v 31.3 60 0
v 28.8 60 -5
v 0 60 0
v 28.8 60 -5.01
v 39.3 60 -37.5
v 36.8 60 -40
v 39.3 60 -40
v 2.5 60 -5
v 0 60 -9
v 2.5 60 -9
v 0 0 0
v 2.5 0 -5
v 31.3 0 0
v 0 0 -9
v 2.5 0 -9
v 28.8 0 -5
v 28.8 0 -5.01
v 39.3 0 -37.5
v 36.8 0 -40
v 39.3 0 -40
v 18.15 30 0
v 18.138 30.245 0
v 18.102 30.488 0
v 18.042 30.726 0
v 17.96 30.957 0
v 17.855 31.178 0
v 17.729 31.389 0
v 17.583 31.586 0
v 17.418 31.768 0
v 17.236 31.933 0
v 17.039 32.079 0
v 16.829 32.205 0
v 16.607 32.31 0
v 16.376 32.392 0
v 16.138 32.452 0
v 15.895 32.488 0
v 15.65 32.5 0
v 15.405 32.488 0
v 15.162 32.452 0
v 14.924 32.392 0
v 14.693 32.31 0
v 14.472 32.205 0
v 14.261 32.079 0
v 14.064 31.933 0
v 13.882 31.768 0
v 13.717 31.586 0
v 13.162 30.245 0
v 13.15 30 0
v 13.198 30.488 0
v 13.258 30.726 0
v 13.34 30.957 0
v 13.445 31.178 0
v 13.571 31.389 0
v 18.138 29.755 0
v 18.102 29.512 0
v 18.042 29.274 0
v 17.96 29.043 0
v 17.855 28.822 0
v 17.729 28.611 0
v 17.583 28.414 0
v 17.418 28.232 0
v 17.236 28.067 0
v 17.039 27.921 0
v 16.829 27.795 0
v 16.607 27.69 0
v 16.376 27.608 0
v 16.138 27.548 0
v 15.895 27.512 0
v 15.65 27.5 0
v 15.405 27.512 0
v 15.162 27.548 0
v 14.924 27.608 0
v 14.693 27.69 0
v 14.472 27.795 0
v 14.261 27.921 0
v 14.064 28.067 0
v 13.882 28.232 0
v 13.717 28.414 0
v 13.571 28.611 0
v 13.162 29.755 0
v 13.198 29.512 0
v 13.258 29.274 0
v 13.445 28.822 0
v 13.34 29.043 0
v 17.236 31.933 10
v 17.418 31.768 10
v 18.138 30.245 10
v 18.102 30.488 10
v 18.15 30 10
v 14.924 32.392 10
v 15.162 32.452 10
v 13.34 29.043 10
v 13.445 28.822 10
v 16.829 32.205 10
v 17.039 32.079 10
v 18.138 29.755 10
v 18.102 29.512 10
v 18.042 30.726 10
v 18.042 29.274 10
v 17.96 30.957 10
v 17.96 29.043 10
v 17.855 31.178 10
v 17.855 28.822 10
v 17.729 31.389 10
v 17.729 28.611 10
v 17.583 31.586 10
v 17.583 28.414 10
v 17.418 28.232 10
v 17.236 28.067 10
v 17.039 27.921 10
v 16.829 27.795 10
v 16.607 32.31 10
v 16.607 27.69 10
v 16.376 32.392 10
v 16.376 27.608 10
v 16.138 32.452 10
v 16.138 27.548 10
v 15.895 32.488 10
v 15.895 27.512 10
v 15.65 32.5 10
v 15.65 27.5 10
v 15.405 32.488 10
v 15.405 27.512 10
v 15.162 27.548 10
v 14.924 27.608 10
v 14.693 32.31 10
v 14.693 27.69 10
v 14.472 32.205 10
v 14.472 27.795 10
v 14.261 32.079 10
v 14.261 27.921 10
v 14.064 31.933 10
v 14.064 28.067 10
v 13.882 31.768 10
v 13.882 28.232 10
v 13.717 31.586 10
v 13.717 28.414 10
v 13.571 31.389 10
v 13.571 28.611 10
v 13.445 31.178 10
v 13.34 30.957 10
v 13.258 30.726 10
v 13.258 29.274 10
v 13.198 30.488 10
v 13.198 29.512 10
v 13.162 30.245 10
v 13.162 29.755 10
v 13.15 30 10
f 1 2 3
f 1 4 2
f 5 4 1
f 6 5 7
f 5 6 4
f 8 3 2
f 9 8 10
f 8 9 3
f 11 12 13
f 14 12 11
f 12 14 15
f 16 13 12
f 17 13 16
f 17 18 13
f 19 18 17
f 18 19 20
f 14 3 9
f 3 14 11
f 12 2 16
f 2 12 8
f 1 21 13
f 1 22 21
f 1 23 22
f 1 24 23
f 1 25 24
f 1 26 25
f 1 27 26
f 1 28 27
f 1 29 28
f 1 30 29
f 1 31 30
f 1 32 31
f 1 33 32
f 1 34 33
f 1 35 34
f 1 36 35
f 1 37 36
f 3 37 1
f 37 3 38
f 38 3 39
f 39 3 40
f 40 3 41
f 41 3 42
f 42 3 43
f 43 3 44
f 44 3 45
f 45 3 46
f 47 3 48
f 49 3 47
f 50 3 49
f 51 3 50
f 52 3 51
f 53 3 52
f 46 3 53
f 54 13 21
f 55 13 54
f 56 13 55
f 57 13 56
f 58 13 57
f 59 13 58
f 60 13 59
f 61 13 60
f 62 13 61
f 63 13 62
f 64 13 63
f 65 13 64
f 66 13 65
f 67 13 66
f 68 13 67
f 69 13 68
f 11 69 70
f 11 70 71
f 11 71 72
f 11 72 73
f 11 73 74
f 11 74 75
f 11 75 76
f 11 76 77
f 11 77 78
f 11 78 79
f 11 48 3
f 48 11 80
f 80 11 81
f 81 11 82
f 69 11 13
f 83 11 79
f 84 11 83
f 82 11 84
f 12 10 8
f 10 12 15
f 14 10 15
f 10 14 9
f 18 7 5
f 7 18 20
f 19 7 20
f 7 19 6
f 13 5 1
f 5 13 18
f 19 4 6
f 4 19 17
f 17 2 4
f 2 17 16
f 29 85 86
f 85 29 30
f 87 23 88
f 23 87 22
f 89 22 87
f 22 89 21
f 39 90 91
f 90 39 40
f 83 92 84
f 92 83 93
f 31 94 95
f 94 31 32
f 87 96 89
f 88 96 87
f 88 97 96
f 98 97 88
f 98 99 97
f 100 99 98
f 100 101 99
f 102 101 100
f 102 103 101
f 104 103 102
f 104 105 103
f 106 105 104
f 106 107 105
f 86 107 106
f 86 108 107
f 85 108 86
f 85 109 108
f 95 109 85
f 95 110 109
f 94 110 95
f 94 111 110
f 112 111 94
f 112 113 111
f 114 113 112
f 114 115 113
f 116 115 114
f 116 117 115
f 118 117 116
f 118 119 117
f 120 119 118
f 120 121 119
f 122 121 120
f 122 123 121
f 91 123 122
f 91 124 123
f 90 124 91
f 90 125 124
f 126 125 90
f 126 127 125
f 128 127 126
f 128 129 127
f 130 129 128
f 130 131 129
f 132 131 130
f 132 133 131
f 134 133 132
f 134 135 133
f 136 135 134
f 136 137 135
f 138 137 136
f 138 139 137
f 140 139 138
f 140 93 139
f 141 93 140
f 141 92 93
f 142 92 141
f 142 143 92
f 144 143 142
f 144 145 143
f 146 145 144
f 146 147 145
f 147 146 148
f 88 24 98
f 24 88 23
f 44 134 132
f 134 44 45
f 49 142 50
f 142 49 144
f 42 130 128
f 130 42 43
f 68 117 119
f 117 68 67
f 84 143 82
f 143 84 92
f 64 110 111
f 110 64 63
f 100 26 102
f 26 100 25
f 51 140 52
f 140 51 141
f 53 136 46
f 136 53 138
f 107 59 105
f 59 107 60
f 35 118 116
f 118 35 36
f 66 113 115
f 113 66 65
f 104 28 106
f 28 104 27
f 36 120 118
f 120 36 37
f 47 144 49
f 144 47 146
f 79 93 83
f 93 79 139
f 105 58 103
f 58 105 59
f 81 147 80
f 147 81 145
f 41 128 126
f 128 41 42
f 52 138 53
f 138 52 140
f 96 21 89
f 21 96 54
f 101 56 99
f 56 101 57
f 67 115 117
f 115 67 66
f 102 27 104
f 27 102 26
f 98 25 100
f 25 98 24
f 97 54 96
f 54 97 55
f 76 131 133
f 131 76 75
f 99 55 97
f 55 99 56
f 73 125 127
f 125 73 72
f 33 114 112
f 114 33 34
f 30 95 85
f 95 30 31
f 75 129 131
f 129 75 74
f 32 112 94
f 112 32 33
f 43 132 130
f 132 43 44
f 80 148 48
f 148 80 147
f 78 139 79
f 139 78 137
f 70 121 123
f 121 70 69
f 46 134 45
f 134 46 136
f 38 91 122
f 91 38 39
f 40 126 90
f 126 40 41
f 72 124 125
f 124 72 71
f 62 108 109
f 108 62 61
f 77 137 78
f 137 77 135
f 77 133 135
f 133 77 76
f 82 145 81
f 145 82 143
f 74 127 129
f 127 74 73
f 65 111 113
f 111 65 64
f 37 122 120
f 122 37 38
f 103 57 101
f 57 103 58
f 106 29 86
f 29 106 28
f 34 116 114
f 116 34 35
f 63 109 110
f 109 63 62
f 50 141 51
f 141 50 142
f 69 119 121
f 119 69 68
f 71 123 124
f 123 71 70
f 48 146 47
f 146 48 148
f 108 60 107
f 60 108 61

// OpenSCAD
/* Monitor Top Mount - Ring Light & Webcam Stand
 * Simple upside-down J clip that hooks over monitor top
 */

/* [Monitor Dimensions] */
// Thickness at top of monitor
monitor_thickness = 26;
// Thickness at bottom of back (where curve ends)
monitor_thickness_bottom = 34;

/* [Mount Dimensions] */
// Width of the mount (along monitor edge)
width = 60;
// How far down the front lip extends
front_lip = 4;
// How far down the back extends
back_depth = 35;
// Wall thickness
wall = 2.5;
// Top bar thickness (extra beef)
top_thickness = 5;

/* [Ring Light Peg] */
// Peg diameter
peg_diameter = 5;
// Peg height
peg_height = 10;

/* [Print Settings] */
// Clearance for fit
clearance = 0.3;
$fn = 64;

// Calculated
inner = monitor_thickness + clearance;
total_depth = wall + inner + wall;  // front wall + gap + back wall
back_slope = monitor_thickness_bottom - monitor_thickness;  // 8mm outward

module monitor_mount() {
    // Simple upside-down J profile, extruded for width

    // Top bar (thicker)
    cube([total_depth, top_thickness, width]);

    // Front lip
    cube([wall, top_thickness + front_lip, width]);

    // Back drop with slope
    translate([total_depth - wall, 0, 0])
        sloped_back();

    // Ring light peg on top, centered
    translate([total_depth/2, 0, width/2])
        rotate([90, 0, 0])
            cylinder(d=peg_diameter, h=peg_height);
}

module sloped_back() {
    // Back wall that slopes outward as it goes down
    hull() {
        // Top of back (aligned with top bar)
        cube([wall, top_thickness + 0.01, width]);

        // Bottom of back (sloped outward)
        translate([back_slope, top_thickness + back_depth - wall, 0])
            cube([wall, wall, width]);
    }
}

// Render in print orientation (top facing up)
rotate([-90, 0, 0])
    monitor_mount();

// PRINT: Flat on bed, no supports needed
